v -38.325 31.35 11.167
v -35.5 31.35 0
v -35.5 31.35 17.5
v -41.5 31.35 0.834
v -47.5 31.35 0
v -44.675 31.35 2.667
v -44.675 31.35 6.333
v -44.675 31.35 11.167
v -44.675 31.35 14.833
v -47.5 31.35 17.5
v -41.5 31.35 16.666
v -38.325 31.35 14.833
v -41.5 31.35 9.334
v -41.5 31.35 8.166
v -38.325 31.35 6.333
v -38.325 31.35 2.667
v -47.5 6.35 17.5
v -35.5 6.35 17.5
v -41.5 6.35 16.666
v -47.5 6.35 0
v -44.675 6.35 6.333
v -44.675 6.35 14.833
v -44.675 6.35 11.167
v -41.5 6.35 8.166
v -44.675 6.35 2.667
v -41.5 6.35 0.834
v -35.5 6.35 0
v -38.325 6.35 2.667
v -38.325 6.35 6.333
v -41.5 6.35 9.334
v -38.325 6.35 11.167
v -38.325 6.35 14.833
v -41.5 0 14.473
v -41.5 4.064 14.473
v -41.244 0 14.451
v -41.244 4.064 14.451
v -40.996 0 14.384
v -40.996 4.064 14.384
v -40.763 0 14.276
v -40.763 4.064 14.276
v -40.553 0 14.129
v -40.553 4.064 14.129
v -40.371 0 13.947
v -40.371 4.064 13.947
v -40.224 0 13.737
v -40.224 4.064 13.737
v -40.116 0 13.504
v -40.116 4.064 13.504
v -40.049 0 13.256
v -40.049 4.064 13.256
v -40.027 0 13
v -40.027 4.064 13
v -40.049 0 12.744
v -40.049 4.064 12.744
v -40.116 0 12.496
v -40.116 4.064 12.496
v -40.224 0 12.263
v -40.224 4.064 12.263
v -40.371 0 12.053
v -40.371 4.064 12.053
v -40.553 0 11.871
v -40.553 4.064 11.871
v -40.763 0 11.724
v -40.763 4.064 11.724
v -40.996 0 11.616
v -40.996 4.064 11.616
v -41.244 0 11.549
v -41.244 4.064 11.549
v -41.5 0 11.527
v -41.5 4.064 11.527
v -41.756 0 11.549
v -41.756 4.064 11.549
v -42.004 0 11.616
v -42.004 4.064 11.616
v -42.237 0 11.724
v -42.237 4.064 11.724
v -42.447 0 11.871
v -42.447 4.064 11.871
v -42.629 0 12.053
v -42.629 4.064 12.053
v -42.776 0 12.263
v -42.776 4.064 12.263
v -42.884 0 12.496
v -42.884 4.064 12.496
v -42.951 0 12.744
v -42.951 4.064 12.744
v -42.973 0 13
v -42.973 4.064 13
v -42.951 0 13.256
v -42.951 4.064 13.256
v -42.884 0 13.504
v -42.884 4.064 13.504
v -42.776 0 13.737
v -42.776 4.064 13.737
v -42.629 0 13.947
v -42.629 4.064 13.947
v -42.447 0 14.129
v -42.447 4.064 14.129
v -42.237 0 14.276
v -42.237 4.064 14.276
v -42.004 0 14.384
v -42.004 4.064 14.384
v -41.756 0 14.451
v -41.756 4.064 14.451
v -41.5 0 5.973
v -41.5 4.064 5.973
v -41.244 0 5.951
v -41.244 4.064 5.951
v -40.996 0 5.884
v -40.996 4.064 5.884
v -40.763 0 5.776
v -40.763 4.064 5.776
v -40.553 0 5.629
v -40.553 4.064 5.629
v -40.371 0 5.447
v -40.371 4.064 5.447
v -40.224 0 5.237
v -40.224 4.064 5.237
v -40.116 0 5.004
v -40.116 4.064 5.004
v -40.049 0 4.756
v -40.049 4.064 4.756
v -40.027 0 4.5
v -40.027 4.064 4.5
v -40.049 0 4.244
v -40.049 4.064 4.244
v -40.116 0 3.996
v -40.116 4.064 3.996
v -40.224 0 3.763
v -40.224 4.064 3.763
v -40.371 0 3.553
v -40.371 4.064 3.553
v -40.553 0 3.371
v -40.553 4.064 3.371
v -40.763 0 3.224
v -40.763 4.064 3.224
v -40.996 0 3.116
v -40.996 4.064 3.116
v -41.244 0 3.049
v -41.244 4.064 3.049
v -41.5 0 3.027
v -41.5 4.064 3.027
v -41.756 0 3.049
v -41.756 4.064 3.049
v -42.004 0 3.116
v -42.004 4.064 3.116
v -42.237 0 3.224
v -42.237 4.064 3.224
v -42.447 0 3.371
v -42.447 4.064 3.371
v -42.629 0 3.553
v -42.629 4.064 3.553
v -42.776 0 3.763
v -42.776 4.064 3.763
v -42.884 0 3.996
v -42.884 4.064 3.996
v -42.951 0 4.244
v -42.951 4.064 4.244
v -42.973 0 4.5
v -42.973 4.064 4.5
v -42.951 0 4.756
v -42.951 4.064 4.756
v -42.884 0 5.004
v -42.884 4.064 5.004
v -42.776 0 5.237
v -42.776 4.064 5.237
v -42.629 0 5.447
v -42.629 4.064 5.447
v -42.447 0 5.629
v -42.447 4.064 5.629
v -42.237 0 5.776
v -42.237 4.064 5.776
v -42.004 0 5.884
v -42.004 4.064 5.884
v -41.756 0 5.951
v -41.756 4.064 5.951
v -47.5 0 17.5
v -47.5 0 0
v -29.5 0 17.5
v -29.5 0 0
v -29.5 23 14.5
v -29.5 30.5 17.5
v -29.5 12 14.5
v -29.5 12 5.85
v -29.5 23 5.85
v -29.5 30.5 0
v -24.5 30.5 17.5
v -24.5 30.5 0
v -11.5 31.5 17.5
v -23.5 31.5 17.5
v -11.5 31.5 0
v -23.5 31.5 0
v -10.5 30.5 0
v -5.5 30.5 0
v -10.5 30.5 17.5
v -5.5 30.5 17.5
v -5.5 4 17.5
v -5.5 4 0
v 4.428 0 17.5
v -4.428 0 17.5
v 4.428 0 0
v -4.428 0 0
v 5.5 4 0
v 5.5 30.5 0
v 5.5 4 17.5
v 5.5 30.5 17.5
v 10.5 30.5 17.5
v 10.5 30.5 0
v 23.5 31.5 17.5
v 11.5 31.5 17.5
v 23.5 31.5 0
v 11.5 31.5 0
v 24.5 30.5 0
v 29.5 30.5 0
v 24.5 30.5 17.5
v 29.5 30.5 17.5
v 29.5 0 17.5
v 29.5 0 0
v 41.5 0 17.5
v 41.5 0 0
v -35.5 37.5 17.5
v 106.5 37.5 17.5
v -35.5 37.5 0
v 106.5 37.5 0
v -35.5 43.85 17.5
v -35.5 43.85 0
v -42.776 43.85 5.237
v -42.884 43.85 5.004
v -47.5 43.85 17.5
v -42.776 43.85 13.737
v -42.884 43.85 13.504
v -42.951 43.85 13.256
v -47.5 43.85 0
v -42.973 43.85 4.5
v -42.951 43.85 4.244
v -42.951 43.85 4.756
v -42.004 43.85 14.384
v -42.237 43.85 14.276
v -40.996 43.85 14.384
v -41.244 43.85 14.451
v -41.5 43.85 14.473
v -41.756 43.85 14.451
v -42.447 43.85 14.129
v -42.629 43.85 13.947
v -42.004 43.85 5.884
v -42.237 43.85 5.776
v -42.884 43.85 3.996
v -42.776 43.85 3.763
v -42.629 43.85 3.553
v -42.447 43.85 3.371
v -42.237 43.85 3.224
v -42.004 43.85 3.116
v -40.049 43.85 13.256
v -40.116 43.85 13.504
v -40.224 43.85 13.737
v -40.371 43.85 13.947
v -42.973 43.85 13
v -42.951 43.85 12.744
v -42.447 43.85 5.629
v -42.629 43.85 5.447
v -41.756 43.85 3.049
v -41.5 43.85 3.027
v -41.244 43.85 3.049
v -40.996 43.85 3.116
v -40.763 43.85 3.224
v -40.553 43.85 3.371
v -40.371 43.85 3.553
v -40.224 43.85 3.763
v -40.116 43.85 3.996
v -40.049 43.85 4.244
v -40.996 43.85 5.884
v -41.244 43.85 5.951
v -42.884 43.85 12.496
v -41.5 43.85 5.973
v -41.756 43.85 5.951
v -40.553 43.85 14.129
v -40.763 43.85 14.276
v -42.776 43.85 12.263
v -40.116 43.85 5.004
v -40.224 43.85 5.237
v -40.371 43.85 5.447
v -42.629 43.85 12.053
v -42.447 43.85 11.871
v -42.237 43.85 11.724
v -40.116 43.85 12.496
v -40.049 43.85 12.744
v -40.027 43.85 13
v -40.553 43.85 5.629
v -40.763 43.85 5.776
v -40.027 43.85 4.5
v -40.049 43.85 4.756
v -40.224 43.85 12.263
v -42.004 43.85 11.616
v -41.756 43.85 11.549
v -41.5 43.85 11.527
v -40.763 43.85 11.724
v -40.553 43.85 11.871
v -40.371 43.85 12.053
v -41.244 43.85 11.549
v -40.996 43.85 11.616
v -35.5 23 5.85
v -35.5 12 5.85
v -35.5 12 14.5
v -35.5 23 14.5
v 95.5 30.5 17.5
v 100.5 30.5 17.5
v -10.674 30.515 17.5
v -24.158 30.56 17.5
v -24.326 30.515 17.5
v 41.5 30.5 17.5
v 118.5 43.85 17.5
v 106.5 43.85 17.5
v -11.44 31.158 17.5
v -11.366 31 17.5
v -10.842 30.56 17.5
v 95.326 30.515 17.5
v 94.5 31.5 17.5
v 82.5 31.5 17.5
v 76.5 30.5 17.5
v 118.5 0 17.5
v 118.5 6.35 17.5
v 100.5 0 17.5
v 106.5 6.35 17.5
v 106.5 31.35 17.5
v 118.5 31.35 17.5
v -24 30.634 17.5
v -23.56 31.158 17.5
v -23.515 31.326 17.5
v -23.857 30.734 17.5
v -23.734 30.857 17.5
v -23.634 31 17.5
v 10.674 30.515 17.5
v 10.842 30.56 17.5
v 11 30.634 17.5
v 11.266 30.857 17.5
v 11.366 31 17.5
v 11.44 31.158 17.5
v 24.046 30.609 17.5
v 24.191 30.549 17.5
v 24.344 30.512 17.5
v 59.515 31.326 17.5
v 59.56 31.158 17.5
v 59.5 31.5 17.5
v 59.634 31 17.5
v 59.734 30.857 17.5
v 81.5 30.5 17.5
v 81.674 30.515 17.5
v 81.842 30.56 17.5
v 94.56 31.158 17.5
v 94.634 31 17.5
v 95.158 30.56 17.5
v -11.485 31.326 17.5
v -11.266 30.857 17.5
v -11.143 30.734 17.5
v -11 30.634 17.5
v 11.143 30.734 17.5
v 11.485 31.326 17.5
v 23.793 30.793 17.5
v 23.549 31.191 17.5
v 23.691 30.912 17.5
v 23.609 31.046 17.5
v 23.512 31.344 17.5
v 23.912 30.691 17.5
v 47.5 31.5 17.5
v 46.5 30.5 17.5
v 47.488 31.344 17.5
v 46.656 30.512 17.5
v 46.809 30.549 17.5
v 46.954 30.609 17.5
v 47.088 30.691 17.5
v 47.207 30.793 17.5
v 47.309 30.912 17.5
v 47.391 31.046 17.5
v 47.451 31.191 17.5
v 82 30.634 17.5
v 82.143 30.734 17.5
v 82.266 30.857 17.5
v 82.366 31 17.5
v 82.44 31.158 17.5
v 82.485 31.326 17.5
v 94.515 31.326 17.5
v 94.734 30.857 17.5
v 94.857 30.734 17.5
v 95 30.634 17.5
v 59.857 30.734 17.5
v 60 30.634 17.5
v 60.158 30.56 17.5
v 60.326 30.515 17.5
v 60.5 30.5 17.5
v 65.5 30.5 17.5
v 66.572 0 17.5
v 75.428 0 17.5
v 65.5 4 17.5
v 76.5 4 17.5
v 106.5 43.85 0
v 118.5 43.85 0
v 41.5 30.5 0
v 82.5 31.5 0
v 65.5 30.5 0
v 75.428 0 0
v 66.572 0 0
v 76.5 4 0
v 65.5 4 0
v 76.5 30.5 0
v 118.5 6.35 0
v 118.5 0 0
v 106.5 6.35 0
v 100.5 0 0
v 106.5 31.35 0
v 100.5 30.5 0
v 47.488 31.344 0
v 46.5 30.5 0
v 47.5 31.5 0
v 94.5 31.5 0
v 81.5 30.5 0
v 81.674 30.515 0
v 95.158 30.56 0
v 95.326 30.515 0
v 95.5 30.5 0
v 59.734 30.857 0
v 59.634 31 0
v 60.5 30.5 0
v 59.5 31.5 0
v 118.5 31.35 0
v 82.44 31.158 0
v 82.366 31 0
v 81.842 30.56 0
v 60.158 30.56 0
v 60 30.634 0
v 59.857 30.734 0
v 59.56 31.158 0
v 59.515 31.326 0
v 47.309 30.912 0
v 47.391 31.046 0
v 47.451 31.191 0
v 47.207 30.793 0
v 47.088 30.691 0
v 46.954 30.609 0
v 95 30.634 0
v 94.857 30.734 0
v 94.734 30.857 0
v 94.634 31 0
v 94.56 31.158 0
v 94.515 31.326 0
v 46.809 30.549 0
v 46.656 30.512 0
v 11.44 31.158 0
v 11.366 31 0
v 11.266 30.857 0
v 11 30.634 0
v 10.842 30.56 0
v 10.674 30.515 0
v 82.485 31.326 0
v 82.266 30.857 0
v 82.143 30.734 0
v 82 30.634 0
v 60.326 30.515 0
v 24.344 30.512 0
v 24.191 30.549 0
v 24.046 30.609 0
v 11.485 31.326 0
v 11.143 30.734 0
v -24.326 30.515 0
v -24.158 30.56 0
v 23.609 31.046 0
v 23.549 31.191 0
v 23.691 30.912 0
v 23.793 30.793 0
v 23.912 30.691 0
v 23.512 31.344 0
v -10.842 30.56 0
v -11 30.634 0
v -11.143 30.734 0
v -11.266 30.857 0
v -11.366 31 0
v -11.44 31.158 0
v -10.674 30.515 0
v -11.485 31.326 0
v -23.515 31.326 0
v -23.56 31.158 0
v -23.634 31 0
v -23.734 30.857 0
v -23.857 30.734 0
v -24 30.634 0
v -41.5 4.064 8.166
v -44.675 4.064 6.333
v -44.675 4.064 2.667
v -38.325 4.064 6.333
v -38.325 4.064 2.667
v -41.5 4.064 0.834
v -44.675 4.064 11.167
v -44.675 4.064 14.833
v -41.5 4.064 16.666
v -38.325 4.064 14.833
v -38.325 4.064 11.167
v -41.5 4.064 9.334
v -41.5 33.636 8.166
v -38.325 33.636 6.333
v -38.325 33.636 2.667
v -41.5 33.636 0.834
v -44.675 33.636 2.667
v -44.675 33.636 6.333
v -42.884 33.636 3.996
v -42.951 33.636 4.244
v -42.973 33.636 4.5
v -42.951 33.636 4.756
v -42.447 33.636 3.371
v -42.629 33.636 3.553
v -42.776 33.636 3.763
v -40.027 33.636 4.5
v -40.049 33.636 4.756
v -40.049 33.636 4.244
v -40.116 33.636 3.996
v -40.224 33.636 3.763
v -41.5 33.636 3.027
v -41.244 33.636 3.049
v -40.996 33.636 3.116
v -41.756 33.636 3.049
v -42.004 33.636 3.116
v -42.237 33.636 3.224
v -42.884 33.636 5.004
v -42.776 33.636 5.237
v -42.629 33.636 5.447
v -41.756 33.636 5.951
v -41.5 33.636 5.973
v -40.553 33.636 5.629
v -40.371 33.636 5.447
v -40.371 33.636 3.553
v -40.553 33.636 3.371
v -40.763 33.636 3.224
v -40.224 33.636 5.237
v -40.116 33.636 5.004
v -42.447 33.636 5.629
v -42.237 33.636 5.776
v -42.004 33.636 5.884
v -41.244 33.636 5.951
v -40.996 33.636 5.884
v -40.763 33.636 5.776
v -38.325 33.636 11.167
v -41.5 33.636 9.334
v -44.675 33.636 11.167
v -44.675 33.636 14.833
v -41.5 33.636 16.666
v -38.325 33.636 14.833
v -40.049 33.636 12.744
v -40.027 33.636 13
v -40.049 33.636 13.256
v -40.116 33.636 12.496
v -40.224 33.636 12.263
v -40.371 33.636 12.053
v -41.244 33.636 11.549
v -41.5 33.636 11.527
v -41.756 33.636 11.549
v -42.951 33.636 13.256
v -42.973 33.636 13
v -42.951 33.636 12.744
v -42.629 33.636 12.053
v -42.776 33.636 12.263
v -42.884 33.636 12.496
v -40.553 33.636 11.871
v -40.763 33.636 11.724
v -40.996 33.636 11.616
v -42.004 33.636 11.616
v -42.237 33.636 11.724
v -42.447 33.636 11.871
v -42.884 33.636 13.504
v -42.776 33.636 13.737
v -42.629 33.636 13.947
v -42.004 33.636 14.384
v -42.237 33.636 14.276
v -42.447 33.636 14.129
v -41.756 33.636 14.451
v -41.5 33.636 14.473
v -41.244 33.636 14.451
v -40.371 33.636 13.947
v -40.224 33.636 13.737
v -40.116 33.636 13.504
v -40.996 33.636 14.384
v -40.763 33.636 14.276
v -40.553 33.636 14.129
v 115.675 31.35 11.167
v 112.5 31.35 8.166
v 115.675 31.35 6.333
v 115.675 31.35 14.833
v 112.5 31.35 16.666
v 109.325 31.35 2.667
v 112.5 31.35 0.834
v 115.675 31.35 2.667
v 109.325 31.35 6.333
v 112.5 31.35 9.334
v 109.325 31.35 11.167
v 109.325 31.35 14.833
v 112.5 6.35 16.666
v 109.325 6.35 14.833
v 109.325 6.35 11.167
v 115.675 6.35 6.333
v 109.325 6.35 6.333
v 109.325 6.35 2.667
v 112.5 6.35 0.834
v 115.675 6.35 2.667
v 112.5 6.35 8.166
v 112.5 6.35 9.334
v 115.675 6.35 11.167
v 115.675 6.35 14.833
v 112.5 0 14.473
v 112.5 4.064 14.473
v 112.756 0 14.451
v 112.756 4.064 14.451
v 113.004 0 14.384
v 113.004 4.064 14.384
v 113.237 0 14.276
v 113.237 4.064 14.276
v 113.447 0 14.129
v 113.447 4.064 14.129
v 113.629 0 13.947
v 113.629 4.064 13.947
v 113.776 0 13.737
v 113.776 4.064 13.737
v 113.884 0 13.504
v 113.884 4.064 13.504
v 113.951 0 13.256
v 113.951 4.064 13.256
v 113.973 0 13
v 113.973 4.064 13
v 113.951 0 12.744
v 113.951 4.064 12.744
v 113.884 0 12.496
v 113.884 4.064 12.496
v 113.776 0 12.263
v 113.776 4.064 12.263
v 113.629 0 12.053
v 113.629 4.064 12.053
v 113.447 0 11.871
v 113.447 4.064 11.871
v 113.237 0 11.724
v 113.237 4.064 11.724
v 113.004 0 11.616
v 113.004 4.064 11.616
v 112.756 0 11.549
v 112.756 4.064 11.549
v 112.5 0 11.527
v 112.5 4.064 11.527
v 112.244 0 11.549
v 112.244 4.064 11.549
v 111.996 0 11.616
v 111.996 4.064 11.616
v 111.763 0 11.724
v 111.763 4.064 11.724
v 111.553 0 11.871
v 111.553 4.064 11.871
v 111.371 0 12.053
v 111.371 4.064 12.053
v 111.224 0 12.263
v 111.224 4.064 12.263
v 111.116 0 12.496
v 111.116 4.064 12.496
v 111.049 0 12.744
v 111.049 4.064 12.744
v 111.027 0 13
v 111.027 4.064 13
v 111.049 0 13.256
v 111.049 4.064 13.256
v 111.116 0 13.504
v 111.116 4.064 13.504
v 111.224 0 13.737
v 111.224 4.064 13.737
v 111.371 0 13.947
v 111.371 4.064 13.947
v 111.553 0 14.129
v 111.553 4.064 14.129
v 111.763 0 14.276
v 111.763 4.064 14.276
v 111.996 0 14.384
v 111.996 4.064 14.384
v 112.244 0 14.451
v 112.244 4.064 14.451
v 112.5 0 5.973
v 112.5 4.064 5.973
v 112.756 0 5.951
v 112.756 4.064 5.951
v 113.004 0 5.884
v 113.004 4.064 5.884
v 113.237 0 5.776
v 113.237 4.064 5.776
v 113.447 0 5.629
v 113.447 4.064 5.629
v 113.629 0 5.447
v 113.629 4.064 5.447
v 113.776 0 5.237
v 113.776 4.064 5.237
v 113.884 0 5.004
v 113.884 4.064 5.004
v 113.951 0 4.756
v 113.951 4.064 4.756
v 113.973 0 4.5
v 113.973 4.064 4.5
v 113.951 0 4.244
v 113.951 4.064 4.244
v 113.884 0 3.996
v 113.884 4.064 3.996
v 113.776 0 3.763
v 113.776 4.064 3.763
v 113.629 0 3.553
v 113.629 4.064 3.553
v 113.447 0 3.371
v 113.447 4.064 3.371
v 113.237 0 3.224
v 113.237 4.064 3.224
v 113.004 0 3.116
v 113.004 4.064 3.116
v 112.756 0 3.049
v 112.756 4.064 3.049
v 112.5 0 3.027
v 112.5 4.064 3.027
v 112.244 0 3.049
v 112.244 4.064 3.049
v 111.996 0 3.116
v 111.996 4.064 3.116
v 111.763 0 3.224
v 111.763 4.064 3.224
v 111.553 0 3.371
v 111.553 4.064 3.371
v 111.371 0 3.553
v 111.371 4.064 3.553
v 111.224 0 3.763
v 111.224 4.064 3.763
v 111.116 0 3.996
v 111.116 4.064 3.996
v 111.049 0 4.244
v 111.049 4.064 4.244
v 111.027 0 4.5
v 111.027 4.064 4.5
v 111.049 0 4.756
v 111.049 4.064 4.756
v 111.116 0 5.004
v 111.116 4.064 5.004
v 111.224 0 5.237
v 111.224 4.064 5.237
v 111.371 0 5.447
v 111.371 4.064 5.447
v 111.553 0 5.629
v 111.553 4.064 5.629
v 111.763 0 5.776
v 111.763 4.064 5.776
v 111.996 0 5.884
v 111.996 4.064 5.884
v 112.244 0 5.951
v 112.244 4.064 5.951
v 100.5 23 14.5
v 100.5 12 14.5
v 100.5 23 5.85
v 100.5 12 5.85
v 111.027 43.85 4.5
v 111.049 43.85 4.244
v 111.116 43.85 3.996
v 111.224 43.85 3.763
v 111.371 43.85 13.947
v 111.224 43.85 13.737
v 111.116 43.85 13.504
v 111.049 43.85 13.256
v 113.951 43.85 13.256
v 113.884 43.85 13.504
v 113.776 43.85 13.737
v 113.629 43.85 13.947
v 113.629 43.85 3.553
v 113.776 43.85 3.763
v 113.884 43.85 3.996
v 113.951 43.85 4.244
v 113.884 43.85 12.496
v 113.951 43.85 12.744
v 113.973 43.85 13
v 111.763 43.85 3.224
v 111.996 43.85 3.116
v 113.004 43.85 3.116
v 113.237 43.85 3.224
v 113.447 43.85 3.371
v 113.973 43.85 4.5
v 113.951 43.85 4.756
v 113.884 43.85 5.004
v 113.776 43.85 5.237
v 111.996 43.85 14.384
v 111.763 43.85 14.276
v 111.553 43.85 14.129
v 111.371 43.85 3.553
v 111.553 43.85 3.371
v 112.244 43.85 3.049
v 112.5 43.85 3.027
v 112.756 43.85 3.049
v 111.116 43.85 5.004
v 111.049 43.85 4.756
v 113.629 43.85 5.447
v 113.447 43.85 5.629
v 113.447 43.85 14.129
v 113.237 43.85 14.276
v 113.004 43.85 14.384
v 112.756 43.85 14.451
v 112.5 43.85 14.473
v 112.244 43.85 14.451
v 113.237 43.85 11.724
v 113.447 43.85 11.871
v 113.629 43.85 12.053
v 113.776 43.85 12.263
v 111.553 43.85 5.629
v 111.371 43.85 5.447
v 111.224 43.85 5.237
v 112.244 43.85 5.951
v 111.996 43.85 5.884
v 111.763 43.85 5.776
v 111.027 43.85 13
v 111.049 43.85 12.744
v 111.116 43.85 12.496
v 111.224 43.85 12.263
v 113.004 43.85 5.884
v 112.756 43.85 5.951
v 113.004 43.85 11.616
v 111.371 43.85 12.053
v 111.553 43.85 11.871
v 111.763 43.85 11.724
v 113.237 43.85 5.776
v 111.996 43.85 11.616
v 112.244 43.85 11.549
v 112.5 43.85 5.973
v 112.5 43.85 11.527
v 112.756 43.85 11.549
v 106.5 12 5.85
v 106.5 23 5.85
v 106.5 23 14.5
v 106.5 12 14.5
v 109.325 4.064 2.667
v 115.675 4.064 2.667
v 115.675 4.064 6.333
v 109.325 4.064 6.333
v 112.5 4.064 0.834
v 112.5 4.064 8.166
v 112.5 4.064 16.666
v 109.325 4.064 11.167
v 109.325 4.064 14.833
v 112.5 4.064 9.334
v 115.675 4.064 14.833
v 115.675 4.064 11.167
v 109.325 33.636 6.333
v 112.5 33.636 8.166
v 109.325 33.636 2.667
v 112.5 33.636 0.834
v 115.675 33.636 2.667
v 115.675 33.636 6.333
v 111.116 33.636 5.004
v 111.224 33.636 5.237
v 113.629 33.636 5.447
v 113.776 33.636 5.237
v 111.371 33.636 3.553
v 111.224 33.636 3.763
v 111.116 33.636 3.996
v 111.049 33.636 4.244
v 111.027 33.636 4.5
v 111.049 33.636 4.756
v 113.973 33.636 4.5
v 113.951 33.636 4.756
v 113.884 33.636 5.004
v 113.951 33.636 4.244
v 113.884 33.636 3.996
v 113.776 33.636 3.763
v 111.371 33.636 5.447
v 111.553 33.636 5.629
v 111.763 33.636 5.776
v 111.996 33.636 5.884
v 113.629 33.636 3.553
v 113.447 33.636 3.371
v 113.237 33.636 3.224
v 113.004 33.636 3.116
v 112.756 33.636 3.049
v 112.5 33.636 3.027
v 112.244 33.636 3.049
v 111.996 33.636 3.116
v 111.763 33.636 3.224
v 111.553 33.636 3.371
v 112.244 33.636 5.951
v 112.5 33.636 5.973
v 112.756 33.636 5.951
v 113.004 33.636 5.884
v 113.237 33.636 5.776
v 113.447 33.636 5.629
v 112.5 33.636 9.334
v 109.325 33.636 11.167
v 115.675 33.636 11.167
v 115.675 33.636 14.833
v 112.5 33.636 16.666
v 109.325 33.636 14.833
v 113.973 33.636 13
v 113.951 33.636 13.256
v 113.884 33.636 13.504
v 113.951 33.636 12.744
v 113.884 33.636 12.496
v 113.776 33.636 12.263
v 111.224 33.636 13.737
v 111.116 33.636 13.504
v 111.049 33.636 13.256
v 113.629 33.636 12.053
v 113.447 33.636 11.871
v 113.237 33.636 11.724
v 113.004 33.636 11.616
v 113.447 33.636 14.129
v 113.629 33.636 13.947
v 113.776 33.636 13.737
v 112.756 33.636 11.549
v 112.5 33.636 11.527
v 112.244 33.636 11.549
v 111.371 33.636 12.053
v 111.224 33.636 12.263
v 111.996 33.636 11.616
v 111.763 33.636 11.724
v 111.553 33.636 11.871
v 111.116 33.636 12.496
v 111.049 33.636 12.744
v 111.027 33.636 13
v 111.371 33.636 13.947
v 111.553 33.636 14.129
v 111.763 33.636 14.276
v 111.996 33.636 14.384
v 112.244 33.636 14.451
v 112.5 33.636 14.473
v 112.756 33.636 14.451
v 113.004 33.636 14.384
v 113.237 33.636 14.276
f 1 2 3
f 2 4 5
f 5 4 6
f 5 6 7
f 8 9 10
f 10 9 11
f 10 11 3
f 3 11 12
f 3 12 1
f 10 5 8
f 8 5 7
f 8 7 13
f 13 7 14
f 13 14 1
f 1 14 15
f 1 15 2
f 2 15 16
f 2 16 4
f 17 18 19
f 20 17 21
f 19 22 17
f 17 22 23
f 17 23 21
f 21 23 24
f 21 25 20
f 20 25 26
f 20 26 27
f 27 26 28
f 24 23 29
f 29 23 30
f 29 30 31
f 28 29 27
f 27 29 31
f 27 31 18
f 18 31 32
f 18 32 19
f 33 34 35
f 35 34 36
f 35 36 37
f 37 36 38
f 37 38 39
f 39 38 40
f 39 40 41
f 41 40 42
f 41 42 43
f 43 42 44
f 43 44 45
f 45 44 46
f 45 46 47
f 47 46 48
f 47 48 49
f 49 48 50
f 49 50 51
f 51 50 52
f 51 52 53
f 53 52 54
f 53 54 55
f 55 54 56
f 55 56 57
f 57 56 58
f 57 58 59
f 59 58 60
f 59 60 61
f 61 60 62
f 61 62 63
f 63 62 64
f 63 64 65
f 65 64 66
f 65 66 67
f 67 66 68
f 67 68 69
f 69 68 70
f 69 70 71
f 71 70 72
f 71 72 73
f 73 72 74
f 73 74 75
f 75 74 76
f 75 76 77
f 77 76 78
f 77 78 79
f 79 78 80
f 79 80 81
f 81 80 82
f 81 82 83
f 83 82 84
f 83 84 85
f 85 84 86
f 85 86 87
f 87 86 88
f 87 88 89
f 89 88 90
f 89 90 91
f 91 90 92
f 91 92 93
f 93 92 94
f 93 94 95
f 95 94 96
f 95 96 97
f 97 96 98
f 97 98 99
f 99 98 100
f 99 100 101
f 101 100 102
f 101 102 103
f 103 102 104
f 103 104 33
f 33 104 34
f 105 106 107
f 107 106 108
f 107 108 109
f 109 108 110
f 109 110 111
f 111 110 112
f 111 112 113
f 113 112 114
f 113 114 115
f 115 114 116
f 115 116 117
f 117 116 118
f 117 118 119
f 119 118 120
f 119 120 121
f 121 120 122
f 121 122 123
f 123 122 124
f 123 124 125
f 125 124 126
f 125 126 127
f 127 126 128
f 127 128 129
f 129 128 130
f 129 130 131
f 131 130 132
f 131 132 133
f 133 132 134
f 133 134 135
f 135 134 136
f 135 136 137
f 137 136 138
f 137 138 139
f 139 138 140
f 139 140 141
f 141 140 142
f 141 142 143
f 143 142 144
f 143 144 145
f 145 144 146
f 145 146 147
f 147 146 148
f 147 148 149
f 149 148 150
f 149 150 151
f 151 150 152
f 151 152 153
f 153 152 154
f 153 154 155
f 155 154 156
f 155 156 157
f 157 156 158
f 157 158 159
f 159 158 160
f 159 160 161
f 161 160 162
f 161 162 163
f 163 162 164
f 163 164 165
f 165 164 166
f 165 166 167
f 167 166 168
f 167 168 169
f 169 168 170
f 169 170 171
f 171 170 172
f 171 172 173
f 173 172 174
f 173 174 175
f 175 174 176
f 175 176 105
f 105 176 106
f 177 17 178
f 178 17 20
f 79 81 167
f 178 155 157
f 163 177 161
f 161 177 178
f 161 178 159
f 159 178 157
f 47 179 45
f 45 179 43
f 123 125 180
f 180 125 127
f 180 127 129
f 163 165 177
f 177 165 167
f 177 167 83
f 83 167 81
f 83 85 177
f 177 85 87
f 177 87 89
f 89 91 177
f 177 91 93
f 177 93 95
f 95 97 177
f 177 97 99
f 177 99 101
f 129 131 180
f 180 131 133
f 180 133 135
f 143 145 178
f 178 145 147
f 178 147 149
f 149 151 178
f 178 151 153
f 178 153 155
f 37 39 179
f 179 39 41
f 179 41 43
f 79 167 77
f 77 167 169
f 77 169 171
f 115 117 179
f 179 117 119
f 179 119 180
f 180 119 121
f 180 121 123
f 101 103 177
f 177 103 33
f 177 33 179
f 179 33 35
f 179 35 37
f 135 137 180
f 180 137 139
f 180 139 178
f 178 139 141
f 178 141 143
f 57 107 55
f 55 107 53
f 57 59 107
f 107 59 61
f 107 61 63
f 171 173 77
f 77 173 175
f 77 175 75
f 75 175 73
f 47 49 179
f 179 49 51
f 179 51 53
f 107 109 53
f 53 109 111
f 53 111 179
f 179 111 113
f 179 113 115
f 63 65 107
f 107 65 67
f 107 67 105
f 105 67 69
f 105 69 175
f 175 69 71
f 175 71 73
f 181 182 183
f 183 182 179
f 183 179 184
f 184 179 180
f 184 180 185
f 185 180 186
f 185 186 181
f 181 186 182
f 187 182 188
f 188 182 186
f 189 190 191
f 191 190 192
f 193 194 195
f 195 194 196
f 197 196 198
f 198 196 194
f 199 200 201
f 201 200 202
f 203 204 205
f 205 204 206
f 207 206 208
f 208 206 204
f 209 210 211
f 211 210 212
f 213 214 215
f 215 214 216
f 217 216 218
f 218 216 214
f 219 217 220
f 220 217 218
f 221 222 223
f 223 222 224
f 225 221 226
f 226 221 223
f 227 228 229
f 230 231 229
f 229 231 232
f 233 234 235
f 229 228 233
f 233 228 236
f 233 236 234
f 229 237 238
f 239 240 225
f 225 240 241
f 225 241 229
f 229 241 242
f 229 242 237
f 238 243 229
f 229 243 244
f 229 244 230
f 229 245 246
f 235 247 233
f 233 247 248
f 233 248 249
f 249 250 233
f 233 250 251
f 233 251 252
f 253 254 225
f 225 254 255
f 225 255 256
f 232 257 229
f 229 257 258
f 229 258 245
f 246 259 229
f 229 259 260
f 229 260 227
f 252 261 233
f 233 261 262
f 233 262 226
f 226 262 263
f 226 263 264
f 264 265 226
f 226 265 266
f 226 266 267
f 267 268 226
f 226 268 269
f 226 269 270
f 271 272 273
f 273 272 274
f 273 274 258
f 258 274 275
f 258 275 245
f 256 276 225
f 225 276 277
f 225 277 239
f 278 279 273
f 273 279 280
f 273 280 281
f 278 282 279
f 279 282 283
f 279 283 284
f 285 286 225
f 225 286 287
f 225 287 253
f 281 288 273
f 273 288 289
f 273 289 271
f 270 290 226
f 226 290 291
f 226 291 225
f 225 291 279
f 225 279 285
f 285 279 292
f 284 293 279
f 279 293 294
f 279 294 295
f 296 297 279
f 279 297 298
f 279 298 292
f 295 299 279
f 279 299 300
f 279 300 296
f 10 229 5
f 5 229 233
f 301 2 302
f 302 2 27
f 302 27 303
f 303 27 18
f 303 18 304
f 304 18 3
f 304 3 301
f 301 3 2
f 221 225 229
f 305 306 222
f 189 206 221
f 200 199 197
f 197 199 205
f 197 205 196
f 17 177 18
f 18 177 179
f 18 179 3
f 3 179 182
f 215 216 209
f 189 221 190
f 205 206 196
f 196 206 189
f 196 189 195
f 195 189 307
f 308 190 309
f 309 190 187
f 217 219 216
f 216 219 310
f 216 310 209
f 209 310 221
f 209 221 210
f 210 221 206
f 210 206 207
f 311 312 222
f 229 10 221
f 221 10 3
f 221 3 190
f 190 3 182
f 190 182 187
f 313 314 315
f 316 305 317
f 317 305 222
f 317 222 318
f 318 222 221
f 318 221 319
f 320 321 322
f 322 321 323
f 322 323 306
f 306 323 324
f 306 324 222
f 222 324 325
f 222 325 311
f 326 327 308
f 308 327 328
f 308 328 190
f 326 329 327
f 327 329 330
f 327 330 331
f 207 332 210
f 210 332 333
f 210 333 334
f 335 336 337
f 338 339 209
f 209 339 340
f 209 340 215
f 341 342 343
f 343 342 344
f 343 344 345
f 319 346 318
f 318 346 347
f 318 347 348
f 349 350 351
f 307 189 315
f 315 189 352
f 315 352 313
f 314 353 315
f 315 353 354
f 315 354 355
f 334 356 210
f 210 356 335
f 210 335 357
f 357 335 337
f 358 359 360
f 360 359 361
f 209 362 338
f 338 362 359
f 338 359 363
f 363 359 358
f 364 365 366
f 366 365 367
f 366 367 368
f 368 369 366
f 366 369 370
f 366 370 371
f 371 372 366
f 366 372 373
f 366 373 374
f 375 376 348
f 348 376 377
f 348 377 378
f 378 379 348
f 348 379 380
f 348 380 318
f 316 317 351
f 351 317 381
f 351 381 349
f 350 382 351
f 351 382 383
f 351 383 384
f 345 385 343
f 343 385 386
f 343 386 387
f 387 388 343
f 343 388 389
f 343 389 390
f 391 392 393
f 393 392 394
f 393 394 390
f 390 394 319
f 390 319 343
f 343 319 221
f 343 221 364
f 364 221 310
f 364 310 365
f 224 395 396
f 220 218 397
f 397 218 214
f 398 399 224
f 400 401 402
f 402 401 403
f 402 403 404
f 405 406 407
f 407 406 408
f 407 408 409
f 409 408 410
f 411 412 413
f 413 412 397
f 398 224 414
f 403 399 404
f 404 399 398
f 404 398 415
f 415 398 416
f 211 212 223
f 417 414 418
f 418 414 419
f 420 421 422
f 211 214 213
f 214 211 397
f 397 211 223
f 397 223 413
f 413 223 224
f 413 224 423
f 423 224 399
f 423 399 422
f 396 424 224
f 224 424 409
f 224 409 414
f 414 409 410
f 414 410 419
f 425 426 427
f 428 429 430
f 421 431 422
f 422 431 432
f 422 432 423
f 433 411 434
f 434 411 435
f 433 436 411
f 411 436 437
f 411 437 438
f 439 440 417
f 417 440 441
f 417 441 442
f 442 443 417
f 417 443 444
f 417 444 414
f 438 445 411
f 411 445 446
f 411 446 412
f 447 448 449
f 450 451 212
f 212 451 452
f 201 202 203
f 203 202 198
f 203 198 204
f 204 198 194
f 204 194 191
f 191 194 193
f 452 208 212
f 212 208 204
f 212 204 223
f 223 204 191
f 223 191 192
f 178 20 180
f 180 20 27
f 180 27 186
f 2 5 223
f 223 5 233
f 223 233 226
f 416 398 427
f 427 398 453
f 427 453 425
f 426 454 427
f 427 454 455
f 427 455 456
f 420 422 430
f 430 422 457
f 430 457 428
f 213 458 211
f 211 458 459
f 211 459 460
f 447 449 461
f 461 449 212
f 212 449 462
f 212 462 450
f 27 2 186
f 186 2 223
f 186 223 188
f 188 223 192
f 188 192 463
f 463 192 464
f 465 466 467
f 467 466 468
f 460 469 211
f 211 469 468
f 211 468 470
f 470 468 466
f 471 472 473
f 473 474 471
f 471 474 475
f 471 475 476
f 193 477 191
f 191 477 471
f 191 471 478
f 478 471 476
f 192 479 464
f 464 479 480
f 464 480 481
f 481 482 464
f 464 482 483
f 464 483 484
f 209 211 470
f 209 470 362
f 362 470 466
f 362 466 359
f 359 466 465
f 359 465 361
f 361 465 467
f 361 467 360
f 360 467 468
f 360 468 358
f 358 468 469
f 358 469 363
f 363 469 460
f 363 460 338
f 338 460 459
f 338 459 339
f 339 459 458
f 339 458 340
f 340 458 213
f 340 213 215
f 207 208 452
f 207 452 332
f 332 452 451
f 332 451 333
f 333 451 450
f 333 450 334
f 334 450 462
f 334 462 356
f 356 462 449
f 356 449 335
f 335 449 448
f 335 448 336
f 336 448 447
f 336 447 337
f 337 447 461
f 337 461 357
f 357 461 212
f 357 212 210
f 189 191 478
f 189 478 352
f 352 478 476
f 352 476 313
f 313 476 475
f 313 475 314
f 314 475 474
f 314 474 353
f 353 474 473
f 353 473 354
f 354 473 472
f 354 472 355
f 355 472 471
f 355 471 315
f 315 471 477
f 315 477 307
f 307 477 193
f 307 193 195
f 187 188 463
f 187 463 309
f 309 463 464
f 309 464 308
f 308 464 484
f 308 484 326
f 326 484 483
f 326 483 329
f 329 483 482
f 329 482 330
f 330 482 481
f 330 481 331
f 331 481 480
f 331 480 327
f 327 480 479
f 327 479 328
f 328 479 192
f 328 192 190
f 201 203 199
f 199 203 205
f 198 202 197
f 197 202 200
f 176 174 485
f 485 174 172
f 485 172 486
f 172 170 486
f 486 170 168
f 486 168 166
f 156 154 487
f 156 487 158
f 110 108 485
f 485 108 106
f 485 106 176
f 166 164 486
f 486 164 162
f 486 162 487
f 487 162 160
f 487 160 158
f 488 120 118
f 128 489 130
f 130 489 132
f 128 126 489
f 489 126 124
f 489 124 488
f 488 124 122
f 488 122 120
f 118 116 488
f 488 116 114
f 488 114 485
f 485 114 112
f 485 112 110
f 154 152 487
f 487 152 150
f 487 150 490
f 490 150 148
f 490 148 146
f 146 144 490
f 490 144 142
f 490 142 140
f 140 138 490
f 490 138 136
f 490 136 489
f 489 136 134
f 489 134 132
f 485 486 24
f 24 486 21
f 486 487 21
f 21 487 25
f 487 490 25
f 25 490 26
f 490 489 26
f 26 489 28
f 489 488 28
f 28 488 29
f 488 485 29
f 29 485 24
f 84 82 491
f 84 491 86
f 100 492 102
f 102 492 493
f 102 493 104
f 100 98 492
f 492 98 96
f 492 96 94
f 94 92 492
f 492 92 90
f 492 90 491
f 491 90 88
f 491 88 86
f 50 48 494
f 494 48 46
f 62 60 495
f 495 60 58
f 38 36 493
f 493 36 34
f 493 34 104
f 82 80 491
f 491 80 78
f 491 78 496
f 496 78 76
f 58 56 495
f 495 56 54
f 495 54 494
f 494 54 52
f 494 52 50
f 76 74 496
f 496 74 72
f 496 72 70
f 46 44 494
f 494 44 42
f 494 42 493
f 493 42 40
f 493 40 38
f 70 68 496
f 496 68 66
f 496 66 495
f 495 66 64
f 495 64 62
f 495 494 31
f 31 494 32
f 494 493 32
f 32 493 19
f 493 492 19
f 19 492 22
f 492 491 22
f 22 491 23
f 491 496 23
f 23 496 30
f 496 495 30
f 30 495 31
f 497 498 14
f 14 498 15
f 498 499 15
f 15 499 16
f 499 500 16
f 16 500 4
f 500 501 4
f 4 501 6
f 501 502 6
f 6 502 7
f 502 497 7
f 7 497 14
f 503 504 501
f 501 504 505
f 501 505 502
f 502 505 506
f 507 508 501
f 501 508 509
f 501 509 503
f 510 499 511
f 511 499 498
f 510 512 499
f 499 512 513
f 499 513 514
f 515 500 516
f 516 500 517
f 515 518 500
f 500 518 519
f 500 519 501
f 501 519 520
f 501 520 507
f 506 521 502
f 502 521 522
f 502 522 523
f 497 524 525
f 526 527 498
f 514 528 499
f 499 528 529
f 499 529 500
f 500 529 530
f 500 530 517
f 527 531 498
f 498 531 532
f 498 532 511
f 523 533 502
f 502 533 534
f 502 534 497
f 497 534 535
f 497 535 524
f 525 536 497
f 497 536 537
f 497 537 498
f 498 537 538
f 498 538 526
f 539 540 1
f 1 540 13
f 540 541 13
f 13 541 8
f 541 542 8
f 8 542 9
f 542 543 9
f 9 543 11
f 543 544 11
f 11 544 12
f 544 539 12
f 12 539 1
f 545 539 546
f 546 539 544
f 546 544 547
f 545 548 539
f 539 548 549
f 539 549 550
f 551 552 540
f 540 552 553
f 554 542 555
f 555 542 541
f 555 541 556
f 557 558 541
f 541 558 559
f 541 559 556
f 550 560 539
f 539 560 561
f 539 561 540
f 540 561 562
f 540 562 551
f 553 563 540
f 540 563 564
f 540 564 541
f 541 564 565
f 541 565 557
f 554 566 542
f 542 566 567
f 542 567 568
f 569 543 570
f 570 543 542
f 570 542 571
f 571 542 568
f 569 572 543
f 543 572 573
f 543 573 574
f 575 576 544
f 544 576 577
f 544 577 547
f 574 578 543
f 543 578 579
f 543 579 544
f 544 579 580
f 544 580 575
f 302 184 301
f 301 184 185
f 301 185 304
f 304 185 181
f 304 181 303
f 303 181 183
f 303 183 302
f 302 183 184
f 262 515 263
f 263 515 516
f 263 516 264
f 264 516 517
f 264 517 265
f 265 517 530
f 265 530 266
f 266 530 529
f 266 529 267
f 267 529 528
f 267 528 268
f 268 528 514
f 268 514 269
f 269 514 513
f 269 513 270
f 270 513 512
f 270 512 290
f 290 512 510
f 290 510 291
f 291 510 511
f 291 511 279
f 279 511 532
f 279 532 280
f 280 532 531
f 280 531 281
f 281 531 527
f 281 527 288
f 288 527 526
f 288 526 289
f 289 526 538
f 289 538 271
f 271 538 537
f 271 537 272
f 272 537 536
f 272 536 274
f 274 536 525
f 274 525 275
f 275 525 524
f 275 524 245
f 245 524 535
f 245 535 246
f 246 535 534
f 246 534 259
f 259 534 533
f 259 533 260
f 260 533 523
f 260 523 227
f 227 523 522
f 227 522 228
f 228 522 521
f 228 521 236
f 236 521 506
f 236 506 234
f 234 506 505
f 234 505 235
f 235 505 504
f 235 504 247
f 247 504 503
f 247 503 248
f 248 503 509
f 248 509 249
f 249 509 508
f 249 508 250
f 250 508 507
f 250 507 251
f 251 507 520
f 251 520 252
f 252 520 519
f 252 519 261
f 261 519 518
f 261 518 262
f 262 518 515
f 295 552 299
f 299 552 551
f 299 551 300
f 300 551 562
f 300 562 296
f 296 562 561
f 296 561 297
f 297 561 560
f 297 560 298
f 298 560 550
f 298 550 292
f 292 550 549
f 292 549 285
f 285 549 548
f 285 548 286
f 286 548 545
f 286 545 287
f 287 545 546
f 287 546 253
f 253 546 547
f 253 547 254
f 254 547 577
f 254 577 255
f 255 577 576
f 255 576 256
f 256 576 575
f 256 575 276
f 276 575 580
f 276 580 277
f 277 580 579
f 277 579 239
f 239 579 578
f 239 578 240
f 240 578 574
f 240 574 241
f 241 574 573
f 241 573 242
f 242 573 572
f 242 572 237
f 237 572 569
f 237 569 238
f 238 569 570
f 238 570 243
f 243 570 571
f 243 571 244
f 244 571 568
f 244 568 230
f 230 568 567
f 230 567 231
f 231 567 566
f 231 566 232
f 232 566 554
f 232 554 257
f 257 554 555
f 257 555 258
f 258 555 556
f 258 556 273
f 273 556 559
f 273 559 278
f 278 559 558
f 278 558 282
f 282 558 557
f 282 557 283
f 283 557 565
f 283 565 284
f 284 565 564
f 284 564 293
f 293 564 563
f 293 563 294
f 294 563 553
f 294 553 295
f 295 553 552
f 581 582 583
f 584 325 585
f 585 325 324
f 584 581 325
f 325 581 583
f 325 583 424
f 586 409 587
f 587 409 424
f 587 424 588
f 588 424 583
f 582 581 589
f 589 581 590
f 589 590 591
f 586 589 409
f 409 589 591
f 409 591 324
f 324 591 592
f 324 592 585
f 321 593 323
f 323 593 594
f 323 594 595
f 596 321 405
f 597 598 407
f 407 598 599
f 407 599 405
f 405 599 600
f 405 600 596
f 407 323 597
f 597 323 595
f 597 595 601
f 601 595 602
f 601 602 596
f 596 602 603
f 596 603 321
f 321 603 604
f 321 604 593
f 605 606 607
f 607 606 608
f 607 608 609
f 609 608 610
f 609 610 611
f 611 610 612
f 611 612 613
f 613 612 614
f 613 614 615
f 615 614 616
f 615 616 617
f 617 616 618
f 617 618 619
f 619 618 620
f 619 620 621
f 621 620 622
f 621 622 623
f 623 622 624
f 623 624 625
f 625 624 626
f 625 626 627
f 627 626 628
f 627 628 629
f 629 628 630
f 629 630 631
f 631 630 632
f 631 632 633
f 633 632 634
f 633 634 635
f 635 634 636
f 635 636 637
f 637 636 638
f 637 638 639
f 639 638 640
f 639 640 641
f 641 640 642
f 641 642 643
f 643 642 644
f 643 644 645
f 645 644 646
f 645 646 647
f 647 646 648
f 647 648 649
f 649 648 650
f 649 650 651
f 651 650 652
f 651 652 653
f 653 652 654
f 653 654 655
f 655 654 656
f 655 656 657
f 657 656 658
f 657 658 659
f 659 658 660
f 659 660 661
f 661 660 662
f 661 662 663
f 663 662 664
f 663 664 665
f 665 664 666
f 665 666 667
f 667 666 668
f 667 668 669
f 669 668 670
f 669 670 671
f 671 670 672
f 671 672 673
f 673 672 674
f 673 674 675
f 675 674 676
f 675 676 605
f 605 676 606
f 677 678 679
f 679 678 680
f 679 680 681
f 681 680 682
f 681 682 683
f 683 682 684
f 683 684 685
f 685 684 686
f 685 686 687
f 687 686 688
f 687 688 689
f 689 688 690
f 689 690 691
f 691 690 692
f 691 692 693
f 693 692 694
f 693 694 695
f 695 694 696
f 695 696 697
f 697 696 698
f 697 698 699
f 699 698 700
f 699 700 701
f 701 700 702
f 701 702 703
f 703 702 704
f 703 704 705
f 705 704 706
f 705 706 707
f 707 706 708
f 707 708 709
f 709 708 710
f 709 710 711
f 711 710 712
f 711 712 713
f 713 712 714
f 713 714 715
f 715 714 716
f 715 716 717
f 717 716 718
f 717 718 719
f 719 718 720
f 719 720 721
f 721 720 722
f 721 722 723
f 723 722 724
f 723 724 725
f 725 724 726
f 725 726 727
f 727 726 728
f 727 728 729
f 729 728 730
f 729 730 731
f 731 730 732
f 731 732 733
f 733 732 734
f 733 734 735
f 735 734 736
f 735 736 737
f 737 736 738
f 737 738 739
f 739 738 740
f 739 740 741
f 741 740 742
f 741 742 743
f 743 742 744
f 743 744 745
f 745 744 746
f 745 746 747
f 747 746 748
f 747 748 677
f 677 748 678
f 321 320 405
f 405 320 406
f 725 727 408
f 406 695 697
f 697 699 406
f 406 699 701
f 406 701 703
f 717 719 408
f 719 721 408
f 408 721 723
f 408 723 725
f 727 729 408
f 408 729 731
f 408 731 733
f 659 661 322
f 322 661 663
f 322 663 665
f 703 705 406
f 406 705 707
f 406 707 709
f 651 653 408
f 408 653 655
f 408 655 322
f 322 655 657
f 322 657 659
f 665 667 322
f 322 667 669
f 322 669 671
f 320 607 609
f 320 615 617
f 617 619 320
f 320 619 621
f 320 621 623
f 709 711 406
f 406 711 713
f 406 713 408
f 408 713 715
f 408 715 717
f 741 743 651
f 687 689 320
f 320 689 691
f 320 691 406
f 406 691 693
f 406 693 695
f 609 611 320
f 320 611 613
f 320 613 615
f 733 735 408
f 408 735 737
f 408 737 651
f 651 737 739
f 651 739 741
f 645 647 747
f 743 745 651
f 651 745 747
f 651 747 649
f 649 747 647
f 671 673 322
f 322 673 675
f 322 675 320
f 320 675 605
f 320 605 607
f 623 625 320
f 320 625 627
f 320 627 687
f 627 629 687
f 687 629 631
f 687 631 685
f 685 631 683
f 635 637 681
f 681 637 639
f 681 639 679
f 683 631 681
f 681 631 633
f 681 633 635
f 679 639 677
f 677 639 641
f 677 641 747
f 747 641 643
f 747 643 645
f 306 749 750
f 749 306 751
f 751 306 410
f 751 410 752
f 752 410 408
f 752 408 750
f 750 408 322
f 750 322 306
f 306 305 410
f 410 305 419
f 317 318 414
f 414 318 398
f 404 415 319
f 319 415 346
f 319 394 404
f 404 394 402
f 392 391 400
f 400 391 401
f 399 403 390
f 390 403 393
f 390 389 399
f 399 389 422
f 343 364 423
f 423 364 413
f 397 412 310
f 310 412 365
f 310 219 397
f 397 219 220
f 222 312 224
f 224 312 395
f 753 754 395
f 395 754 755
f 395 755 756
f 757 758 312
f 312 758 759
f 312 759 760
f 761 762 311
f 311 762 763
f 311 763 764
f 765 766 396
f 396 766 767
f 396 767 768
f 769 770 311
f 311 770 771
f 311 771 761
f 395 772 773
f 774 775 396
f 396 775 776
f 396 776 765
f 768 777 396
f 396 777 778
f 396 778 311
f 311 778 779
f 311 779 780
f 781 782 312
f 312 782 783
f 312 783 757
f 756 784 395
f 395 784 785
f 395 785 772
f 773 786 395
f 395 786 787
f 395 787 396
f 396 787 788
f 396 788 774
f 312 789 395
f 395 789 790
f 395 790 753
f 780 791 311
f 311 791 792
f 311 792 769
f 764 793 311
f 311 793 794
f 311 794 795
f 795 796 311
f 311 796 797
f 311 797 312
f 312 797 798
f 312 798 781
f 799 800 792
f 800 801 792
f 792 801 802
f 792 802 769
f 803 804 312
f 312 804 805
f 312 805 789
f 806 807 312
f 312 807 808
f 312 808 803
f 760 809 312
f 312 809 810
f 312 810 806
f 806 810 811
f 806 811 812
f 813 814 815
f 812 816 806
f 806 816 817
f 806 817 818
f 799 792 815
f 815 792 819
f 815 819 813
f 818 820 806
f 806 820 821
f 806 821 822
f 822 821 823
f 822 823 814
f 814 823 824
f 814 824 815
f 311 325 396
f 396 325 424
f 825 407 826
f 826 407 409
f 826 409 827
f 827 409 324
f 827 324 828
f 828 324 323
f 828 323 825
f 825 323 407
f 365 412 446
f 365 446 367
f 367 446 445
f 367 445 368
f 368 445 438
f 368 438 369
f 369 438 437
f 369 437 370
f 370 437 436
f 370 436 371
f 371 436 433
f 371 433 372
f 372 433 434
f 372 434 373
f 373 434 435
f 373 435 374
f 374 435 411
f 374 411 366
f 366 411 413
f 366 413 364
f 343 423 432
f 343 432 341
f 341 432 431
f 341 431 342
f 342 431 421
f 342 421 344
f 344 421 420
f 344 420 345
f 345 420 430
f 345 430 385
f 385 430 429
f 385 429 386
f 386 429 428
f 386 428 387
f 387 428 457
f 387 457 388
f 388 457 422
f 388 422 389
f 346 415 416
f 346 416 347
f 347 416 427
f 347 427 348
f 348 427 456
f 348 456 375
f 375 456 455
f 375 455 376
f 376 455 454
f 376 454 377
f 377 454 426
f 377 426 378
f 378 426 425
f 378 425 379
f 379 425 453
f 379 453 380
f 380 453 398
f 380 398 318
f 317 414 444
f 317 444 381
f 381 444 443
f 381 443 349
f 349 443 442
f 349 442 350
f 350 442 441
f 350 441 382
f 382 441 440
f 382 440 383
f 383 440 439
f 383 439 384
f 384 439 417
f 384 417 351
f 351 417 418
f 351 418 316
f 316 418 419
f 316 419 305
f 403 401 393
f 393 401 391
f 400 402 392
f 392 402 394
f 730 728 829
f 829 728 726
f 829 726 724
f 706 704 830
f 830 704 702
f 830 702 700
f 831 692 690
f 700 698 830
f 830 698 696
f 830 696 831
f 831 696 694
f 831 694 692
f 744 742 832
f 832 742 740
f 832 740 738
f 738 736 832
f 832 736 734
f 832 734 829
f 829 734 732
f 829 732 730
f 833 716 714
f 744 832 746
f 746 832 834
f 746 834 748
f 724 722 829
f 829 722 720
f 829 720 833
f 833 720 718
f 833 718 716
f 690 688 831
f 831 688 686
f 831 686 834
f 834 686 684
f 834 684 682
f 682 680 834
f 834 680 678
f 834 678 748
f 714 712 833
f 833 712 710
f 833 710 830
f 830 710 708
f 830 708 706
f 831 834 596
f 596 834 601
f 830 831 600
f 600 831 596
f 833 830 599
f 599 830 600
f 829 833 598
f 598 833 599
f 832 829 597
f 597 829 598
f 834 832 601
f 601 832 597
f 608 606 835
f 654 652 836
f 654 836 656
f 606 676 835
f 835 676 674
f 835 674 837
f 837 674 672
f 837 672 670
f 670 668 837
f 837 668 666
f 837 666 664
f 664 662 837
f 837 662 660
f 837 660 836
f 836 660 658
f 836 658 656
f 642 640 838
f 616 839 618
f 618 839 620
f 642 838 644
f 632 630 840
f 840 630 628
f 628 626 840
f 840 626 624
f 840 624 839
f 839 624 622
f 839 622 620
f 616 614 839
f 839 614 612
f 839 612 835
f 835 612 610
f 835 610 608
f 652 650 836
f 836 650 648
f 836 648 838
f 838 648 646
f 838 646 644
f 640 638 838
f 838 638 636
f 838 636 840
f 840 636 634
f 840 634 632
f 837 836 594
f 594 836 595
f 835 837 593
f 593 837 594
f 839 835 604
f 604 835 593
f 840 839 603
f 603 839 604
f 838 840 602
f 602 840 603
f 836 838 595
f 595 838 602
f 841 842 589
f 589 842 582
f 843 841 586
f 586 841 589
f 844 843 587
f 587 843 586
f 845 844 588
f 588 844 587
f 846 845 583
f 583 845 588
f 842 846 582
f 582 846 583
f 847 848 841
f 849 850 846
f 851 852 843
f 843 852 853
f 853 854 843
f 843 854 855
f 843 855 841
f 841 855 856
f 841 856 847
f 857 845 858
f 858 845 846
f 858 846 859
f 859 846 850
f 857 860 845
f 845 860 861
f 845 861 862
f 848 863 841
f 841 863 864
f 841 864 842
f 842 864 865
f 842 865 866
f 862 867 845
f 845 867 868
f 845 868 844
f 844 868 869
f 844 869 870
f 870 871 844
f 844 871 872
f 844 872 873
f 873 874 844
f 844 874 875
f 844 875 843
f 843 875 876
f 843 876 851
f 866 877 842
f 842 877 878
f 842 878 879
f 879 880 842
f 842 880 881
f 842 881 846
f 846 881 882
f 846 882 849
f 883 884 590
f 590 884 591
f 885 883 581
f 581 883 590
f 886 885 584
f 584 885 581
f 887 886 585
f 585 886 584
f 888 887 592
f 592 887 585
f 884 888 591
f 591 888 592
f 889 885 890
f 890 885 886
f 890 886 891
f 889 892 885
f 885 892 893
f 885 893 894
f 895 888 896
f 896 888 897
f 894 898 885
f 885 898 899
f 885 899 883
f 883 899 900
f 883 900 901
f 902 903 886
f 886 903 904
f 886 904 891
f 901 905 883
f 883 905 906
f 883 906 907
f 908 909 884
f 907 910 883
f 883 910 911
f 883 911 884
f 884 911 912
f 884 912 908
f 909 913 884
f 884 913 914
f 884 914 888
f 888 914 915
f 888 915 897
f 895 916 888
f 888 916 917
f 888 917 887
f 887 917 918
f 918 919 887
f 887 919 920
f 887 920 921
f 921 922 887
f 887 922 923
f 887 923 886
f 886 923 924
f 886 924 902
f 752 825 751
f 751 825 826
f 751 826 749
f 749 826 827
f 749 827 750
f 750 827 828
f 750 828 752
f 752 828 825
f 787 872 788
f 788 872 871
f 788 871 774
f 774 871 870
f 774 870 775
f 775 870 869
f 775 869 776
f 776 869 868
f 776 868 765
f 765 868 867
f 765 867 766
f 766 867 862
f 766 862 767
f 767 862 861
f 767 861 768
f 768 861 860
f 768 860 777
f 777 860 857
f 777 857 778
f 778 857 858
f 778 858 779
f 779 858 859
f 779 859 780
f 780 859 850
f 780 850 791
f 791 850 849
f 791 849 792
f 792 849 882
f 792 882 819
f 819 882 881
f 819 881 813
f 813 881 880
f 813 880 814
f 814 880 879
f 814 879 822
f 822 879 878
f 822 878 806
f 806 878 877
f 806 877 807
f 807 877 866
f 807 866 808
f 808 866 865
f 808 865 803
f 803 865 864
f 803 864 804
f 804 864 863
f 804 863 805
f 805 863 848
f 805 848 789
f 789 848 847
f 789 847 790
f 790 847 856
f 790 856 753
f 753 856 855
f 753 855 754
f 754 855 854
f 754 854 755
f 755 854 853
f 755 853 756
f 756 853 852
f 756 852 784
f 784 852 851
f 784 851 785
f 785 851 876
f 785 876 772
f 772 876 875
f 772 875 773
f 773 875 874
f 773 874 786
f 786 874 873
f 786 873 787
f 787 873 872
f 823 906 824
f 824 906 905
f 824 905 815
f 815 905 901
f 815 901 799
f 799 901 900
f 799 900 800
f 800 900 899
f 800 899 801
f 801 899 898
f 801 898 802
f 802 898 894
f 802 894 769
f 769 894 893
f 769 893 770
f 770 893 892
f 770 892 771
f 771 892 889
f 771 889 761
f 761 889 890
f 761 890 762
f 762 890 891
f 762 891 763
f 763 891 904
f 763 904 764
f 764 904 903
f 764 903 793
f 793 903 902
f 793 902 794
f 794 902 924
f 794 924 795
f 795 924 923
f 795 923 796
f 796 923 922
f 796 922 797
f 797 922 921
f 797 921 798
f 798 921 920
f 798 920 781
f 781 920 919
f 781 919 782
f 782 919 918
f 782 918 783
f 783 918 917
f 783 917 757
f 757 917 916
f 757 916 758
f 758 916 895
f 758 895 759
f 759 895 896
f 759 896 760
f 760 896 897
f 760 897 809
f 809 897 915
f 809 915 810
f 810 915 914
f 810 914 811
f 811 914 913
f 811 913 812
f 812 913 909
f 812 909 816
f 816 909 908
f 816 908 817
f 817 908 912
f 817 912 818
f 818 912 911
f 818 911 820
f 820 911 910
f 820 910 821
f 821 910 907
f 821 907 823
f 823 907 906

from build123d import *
from OCP.BRepFilletAPI import BRepFilletAPI_MakeChamfer

# Parameters (mm, degrees)
BOSS_EXTRUDE1_DEPTH       = 17.5
FILLET1_R                 = 1
CHAMFER1_SIZE             = 4
CHAMFER1_SIZE2            = 1.07179677
F_4_CLEARANCE_HOLE1_D     = 2.9464
F_4_CLEARANCE_HOLE1_DEPTH = 6.35
CUT_EXTRUDE3_START        = -2.286
CUT_EXTRUDE3_DEPTH        = 29.572
SKETCH8_W                 = 8.65
SKETCH8_H                 = 11
CUT_EXTRUDE2_DEPTH        = 10
F_4_CLEARANCE_HOLE2_D     = 2.9464


with BuildPart() as part:
    # Sketch1 → Boss-Extrude1 (new body)
    with BuildSketch(Plane.XY):
        Polygon((-47.5, 6.35), (-35.5, 6.35), (-35.5, 31.35), (-47.5, 31.35), (-47.5, 43.85), (-35.5, 43.85), (-35.5, 37.5), (35.5, 37.5), (35.5, 0), (29.5, 0), (29.5, 30.5), (23.5, 30.5), (23.5, 31.5), (11.5, 31.5), (11.5, 30.5), (5.5, 30.5), (5.5, 0), (-5.5, 0), (-5.5, 30.5), (-11.5, 30.5), (-11.5, 31.5), (-23.5, 31.5), (-23.5, 30.5), (-29.5, 30.5), (-29.5, 0), (-47.5, 0), align=None)
    extrude(amount=BOSS_EXTRUDE1_DEPTH)

    # Fillet1
    fillet1_edges = [part.edges().sort_by_distance(p)[0] for p in [
        (-11.5, 30.5, 8.75),
        (-23.5, 30.5, 8.75),
        (23.5, 30.5, 8.75),
        (11.5, 30.5, 8.75),
    ]]
    fillet(fillet1_edges, radius=FILLET1_R - 0.0001)  # a hair under: the kernel refuses the full size

    # Chamfer1: one chamfer whose edges measure the first distance from different faces: ONE call of the kernel's chamfer builder (chamfer() names one face for all edges)
    chamfer1_edges_1 = [part.edges().sort_by_distance(p)[0] for p in [
        (5.5, 0, 8.75),
    ]]
    chamfer1_side_1 = [part.faces().sort_by_distance(p)[0] for p in [
        (5.5, 15.25, 8.75),
    ]]
    chamfer1_edges_2 = [part.edges().sort_by_distance(p)[0] for p in [
        (-5.5, 0, 8.75),
    ]]
    chamfer1_side_2 = [part.faces().sort_by_distance(p)[0] for p in [
        (-5.5, 15.25, 8.75),
    ]]
    chamfer1 = BRepFilletAPI_MakeChamfer(part.part.solid().wrapped)
    for e in chamfer1_edges_1:
        chamfer1.Add(CHAMFER1_SIZE, CHAMFER1_SIZE2, e.wrapped, chamfer1_side_1[0].wrapped)  # the first distance lies on this face
    for e in chamfer1_edges_2:
        chamfer1.Add(CHAMFER1_SIZE, CHAMFER1_SIZE2, e.wrapped, chamfer1_side_2[0].wrapped)  # the first distance lies on this face
    add(Compound.cast(chamfer1.Shape()), mode=Mode.REPLACE)

    # #4 Clearance Hole1
    with Locations(Plane(origin=(0, 6.35, 0), x_dir=(1, 0, 0), z_dir=(0, 1, 0))):
        with Locations((-41.5, -4.5), (-41.5, -13)):
            Hole(F_4_CLEARANCE_HOLE1_D / 2, depth=F_4_CLEARANCE_HOLE1_DEPTH)

    # Sketch9 → Cut-Extrude3 (cut)
    with BuildSketch(Plane(origin=(0, 6.35, 0), x_dir=(1, 0, 0), z_dir=(0, 1, 0)).offset(CUT_EXTRUDE3_START)):
        Polygon((-41.5, -9.333825791), (-44.675, -11.166912895), (-44.675, -14.833087105), (-41.5, -16.666174209), (-38.325, -14.833087105), (-38.325, -11.166912895), align=None)
        Polygon((-38.325, -6.333087105), (-38.325, -2.666912895), (-41.5, -0.833825791), (-44.675, -2.666912895), (-44.675, -6.333087105), (-41.5, -8.166174209), align=None)
    extrude(amount=CUT_EXTRUDE3_DEPTH, mode=Mode.SUBTRACT)

    # Sketch8 → Cut-Extrude2 (cut)
    with BuildSketch(Plane.ZY.offset(35.5)):
        with Locations((10.175, 17.5)):
            Rectangle(SKETCH8_W, SKETCH8_H)
    extrude(amount=-CUT_EXTRUDE2_DEPTH, mode=Mode.SUBTRACT)

    # #4 Clearance Hole2 (through all)
    with Locations(Plane(origin=(0, 31.35, 0), x_dir=(-1, 0, 0), z_dir=(0, -1, 0))):
        with Locations((41.5, -13), (41.5, -4.5)):
            Hole(F_4_CLEARANCE_HOLE2_D / 2)

    # Mirror1: part across plane


with BuildPart() as part_1:
    add(part.part)
    add(part.part.mirror(Plane(origin=(35.5, 37.5, 17.5), x_dir=(0, 0, 1), z_dir=(-1, 0, 0))))


solid = part_1.part
